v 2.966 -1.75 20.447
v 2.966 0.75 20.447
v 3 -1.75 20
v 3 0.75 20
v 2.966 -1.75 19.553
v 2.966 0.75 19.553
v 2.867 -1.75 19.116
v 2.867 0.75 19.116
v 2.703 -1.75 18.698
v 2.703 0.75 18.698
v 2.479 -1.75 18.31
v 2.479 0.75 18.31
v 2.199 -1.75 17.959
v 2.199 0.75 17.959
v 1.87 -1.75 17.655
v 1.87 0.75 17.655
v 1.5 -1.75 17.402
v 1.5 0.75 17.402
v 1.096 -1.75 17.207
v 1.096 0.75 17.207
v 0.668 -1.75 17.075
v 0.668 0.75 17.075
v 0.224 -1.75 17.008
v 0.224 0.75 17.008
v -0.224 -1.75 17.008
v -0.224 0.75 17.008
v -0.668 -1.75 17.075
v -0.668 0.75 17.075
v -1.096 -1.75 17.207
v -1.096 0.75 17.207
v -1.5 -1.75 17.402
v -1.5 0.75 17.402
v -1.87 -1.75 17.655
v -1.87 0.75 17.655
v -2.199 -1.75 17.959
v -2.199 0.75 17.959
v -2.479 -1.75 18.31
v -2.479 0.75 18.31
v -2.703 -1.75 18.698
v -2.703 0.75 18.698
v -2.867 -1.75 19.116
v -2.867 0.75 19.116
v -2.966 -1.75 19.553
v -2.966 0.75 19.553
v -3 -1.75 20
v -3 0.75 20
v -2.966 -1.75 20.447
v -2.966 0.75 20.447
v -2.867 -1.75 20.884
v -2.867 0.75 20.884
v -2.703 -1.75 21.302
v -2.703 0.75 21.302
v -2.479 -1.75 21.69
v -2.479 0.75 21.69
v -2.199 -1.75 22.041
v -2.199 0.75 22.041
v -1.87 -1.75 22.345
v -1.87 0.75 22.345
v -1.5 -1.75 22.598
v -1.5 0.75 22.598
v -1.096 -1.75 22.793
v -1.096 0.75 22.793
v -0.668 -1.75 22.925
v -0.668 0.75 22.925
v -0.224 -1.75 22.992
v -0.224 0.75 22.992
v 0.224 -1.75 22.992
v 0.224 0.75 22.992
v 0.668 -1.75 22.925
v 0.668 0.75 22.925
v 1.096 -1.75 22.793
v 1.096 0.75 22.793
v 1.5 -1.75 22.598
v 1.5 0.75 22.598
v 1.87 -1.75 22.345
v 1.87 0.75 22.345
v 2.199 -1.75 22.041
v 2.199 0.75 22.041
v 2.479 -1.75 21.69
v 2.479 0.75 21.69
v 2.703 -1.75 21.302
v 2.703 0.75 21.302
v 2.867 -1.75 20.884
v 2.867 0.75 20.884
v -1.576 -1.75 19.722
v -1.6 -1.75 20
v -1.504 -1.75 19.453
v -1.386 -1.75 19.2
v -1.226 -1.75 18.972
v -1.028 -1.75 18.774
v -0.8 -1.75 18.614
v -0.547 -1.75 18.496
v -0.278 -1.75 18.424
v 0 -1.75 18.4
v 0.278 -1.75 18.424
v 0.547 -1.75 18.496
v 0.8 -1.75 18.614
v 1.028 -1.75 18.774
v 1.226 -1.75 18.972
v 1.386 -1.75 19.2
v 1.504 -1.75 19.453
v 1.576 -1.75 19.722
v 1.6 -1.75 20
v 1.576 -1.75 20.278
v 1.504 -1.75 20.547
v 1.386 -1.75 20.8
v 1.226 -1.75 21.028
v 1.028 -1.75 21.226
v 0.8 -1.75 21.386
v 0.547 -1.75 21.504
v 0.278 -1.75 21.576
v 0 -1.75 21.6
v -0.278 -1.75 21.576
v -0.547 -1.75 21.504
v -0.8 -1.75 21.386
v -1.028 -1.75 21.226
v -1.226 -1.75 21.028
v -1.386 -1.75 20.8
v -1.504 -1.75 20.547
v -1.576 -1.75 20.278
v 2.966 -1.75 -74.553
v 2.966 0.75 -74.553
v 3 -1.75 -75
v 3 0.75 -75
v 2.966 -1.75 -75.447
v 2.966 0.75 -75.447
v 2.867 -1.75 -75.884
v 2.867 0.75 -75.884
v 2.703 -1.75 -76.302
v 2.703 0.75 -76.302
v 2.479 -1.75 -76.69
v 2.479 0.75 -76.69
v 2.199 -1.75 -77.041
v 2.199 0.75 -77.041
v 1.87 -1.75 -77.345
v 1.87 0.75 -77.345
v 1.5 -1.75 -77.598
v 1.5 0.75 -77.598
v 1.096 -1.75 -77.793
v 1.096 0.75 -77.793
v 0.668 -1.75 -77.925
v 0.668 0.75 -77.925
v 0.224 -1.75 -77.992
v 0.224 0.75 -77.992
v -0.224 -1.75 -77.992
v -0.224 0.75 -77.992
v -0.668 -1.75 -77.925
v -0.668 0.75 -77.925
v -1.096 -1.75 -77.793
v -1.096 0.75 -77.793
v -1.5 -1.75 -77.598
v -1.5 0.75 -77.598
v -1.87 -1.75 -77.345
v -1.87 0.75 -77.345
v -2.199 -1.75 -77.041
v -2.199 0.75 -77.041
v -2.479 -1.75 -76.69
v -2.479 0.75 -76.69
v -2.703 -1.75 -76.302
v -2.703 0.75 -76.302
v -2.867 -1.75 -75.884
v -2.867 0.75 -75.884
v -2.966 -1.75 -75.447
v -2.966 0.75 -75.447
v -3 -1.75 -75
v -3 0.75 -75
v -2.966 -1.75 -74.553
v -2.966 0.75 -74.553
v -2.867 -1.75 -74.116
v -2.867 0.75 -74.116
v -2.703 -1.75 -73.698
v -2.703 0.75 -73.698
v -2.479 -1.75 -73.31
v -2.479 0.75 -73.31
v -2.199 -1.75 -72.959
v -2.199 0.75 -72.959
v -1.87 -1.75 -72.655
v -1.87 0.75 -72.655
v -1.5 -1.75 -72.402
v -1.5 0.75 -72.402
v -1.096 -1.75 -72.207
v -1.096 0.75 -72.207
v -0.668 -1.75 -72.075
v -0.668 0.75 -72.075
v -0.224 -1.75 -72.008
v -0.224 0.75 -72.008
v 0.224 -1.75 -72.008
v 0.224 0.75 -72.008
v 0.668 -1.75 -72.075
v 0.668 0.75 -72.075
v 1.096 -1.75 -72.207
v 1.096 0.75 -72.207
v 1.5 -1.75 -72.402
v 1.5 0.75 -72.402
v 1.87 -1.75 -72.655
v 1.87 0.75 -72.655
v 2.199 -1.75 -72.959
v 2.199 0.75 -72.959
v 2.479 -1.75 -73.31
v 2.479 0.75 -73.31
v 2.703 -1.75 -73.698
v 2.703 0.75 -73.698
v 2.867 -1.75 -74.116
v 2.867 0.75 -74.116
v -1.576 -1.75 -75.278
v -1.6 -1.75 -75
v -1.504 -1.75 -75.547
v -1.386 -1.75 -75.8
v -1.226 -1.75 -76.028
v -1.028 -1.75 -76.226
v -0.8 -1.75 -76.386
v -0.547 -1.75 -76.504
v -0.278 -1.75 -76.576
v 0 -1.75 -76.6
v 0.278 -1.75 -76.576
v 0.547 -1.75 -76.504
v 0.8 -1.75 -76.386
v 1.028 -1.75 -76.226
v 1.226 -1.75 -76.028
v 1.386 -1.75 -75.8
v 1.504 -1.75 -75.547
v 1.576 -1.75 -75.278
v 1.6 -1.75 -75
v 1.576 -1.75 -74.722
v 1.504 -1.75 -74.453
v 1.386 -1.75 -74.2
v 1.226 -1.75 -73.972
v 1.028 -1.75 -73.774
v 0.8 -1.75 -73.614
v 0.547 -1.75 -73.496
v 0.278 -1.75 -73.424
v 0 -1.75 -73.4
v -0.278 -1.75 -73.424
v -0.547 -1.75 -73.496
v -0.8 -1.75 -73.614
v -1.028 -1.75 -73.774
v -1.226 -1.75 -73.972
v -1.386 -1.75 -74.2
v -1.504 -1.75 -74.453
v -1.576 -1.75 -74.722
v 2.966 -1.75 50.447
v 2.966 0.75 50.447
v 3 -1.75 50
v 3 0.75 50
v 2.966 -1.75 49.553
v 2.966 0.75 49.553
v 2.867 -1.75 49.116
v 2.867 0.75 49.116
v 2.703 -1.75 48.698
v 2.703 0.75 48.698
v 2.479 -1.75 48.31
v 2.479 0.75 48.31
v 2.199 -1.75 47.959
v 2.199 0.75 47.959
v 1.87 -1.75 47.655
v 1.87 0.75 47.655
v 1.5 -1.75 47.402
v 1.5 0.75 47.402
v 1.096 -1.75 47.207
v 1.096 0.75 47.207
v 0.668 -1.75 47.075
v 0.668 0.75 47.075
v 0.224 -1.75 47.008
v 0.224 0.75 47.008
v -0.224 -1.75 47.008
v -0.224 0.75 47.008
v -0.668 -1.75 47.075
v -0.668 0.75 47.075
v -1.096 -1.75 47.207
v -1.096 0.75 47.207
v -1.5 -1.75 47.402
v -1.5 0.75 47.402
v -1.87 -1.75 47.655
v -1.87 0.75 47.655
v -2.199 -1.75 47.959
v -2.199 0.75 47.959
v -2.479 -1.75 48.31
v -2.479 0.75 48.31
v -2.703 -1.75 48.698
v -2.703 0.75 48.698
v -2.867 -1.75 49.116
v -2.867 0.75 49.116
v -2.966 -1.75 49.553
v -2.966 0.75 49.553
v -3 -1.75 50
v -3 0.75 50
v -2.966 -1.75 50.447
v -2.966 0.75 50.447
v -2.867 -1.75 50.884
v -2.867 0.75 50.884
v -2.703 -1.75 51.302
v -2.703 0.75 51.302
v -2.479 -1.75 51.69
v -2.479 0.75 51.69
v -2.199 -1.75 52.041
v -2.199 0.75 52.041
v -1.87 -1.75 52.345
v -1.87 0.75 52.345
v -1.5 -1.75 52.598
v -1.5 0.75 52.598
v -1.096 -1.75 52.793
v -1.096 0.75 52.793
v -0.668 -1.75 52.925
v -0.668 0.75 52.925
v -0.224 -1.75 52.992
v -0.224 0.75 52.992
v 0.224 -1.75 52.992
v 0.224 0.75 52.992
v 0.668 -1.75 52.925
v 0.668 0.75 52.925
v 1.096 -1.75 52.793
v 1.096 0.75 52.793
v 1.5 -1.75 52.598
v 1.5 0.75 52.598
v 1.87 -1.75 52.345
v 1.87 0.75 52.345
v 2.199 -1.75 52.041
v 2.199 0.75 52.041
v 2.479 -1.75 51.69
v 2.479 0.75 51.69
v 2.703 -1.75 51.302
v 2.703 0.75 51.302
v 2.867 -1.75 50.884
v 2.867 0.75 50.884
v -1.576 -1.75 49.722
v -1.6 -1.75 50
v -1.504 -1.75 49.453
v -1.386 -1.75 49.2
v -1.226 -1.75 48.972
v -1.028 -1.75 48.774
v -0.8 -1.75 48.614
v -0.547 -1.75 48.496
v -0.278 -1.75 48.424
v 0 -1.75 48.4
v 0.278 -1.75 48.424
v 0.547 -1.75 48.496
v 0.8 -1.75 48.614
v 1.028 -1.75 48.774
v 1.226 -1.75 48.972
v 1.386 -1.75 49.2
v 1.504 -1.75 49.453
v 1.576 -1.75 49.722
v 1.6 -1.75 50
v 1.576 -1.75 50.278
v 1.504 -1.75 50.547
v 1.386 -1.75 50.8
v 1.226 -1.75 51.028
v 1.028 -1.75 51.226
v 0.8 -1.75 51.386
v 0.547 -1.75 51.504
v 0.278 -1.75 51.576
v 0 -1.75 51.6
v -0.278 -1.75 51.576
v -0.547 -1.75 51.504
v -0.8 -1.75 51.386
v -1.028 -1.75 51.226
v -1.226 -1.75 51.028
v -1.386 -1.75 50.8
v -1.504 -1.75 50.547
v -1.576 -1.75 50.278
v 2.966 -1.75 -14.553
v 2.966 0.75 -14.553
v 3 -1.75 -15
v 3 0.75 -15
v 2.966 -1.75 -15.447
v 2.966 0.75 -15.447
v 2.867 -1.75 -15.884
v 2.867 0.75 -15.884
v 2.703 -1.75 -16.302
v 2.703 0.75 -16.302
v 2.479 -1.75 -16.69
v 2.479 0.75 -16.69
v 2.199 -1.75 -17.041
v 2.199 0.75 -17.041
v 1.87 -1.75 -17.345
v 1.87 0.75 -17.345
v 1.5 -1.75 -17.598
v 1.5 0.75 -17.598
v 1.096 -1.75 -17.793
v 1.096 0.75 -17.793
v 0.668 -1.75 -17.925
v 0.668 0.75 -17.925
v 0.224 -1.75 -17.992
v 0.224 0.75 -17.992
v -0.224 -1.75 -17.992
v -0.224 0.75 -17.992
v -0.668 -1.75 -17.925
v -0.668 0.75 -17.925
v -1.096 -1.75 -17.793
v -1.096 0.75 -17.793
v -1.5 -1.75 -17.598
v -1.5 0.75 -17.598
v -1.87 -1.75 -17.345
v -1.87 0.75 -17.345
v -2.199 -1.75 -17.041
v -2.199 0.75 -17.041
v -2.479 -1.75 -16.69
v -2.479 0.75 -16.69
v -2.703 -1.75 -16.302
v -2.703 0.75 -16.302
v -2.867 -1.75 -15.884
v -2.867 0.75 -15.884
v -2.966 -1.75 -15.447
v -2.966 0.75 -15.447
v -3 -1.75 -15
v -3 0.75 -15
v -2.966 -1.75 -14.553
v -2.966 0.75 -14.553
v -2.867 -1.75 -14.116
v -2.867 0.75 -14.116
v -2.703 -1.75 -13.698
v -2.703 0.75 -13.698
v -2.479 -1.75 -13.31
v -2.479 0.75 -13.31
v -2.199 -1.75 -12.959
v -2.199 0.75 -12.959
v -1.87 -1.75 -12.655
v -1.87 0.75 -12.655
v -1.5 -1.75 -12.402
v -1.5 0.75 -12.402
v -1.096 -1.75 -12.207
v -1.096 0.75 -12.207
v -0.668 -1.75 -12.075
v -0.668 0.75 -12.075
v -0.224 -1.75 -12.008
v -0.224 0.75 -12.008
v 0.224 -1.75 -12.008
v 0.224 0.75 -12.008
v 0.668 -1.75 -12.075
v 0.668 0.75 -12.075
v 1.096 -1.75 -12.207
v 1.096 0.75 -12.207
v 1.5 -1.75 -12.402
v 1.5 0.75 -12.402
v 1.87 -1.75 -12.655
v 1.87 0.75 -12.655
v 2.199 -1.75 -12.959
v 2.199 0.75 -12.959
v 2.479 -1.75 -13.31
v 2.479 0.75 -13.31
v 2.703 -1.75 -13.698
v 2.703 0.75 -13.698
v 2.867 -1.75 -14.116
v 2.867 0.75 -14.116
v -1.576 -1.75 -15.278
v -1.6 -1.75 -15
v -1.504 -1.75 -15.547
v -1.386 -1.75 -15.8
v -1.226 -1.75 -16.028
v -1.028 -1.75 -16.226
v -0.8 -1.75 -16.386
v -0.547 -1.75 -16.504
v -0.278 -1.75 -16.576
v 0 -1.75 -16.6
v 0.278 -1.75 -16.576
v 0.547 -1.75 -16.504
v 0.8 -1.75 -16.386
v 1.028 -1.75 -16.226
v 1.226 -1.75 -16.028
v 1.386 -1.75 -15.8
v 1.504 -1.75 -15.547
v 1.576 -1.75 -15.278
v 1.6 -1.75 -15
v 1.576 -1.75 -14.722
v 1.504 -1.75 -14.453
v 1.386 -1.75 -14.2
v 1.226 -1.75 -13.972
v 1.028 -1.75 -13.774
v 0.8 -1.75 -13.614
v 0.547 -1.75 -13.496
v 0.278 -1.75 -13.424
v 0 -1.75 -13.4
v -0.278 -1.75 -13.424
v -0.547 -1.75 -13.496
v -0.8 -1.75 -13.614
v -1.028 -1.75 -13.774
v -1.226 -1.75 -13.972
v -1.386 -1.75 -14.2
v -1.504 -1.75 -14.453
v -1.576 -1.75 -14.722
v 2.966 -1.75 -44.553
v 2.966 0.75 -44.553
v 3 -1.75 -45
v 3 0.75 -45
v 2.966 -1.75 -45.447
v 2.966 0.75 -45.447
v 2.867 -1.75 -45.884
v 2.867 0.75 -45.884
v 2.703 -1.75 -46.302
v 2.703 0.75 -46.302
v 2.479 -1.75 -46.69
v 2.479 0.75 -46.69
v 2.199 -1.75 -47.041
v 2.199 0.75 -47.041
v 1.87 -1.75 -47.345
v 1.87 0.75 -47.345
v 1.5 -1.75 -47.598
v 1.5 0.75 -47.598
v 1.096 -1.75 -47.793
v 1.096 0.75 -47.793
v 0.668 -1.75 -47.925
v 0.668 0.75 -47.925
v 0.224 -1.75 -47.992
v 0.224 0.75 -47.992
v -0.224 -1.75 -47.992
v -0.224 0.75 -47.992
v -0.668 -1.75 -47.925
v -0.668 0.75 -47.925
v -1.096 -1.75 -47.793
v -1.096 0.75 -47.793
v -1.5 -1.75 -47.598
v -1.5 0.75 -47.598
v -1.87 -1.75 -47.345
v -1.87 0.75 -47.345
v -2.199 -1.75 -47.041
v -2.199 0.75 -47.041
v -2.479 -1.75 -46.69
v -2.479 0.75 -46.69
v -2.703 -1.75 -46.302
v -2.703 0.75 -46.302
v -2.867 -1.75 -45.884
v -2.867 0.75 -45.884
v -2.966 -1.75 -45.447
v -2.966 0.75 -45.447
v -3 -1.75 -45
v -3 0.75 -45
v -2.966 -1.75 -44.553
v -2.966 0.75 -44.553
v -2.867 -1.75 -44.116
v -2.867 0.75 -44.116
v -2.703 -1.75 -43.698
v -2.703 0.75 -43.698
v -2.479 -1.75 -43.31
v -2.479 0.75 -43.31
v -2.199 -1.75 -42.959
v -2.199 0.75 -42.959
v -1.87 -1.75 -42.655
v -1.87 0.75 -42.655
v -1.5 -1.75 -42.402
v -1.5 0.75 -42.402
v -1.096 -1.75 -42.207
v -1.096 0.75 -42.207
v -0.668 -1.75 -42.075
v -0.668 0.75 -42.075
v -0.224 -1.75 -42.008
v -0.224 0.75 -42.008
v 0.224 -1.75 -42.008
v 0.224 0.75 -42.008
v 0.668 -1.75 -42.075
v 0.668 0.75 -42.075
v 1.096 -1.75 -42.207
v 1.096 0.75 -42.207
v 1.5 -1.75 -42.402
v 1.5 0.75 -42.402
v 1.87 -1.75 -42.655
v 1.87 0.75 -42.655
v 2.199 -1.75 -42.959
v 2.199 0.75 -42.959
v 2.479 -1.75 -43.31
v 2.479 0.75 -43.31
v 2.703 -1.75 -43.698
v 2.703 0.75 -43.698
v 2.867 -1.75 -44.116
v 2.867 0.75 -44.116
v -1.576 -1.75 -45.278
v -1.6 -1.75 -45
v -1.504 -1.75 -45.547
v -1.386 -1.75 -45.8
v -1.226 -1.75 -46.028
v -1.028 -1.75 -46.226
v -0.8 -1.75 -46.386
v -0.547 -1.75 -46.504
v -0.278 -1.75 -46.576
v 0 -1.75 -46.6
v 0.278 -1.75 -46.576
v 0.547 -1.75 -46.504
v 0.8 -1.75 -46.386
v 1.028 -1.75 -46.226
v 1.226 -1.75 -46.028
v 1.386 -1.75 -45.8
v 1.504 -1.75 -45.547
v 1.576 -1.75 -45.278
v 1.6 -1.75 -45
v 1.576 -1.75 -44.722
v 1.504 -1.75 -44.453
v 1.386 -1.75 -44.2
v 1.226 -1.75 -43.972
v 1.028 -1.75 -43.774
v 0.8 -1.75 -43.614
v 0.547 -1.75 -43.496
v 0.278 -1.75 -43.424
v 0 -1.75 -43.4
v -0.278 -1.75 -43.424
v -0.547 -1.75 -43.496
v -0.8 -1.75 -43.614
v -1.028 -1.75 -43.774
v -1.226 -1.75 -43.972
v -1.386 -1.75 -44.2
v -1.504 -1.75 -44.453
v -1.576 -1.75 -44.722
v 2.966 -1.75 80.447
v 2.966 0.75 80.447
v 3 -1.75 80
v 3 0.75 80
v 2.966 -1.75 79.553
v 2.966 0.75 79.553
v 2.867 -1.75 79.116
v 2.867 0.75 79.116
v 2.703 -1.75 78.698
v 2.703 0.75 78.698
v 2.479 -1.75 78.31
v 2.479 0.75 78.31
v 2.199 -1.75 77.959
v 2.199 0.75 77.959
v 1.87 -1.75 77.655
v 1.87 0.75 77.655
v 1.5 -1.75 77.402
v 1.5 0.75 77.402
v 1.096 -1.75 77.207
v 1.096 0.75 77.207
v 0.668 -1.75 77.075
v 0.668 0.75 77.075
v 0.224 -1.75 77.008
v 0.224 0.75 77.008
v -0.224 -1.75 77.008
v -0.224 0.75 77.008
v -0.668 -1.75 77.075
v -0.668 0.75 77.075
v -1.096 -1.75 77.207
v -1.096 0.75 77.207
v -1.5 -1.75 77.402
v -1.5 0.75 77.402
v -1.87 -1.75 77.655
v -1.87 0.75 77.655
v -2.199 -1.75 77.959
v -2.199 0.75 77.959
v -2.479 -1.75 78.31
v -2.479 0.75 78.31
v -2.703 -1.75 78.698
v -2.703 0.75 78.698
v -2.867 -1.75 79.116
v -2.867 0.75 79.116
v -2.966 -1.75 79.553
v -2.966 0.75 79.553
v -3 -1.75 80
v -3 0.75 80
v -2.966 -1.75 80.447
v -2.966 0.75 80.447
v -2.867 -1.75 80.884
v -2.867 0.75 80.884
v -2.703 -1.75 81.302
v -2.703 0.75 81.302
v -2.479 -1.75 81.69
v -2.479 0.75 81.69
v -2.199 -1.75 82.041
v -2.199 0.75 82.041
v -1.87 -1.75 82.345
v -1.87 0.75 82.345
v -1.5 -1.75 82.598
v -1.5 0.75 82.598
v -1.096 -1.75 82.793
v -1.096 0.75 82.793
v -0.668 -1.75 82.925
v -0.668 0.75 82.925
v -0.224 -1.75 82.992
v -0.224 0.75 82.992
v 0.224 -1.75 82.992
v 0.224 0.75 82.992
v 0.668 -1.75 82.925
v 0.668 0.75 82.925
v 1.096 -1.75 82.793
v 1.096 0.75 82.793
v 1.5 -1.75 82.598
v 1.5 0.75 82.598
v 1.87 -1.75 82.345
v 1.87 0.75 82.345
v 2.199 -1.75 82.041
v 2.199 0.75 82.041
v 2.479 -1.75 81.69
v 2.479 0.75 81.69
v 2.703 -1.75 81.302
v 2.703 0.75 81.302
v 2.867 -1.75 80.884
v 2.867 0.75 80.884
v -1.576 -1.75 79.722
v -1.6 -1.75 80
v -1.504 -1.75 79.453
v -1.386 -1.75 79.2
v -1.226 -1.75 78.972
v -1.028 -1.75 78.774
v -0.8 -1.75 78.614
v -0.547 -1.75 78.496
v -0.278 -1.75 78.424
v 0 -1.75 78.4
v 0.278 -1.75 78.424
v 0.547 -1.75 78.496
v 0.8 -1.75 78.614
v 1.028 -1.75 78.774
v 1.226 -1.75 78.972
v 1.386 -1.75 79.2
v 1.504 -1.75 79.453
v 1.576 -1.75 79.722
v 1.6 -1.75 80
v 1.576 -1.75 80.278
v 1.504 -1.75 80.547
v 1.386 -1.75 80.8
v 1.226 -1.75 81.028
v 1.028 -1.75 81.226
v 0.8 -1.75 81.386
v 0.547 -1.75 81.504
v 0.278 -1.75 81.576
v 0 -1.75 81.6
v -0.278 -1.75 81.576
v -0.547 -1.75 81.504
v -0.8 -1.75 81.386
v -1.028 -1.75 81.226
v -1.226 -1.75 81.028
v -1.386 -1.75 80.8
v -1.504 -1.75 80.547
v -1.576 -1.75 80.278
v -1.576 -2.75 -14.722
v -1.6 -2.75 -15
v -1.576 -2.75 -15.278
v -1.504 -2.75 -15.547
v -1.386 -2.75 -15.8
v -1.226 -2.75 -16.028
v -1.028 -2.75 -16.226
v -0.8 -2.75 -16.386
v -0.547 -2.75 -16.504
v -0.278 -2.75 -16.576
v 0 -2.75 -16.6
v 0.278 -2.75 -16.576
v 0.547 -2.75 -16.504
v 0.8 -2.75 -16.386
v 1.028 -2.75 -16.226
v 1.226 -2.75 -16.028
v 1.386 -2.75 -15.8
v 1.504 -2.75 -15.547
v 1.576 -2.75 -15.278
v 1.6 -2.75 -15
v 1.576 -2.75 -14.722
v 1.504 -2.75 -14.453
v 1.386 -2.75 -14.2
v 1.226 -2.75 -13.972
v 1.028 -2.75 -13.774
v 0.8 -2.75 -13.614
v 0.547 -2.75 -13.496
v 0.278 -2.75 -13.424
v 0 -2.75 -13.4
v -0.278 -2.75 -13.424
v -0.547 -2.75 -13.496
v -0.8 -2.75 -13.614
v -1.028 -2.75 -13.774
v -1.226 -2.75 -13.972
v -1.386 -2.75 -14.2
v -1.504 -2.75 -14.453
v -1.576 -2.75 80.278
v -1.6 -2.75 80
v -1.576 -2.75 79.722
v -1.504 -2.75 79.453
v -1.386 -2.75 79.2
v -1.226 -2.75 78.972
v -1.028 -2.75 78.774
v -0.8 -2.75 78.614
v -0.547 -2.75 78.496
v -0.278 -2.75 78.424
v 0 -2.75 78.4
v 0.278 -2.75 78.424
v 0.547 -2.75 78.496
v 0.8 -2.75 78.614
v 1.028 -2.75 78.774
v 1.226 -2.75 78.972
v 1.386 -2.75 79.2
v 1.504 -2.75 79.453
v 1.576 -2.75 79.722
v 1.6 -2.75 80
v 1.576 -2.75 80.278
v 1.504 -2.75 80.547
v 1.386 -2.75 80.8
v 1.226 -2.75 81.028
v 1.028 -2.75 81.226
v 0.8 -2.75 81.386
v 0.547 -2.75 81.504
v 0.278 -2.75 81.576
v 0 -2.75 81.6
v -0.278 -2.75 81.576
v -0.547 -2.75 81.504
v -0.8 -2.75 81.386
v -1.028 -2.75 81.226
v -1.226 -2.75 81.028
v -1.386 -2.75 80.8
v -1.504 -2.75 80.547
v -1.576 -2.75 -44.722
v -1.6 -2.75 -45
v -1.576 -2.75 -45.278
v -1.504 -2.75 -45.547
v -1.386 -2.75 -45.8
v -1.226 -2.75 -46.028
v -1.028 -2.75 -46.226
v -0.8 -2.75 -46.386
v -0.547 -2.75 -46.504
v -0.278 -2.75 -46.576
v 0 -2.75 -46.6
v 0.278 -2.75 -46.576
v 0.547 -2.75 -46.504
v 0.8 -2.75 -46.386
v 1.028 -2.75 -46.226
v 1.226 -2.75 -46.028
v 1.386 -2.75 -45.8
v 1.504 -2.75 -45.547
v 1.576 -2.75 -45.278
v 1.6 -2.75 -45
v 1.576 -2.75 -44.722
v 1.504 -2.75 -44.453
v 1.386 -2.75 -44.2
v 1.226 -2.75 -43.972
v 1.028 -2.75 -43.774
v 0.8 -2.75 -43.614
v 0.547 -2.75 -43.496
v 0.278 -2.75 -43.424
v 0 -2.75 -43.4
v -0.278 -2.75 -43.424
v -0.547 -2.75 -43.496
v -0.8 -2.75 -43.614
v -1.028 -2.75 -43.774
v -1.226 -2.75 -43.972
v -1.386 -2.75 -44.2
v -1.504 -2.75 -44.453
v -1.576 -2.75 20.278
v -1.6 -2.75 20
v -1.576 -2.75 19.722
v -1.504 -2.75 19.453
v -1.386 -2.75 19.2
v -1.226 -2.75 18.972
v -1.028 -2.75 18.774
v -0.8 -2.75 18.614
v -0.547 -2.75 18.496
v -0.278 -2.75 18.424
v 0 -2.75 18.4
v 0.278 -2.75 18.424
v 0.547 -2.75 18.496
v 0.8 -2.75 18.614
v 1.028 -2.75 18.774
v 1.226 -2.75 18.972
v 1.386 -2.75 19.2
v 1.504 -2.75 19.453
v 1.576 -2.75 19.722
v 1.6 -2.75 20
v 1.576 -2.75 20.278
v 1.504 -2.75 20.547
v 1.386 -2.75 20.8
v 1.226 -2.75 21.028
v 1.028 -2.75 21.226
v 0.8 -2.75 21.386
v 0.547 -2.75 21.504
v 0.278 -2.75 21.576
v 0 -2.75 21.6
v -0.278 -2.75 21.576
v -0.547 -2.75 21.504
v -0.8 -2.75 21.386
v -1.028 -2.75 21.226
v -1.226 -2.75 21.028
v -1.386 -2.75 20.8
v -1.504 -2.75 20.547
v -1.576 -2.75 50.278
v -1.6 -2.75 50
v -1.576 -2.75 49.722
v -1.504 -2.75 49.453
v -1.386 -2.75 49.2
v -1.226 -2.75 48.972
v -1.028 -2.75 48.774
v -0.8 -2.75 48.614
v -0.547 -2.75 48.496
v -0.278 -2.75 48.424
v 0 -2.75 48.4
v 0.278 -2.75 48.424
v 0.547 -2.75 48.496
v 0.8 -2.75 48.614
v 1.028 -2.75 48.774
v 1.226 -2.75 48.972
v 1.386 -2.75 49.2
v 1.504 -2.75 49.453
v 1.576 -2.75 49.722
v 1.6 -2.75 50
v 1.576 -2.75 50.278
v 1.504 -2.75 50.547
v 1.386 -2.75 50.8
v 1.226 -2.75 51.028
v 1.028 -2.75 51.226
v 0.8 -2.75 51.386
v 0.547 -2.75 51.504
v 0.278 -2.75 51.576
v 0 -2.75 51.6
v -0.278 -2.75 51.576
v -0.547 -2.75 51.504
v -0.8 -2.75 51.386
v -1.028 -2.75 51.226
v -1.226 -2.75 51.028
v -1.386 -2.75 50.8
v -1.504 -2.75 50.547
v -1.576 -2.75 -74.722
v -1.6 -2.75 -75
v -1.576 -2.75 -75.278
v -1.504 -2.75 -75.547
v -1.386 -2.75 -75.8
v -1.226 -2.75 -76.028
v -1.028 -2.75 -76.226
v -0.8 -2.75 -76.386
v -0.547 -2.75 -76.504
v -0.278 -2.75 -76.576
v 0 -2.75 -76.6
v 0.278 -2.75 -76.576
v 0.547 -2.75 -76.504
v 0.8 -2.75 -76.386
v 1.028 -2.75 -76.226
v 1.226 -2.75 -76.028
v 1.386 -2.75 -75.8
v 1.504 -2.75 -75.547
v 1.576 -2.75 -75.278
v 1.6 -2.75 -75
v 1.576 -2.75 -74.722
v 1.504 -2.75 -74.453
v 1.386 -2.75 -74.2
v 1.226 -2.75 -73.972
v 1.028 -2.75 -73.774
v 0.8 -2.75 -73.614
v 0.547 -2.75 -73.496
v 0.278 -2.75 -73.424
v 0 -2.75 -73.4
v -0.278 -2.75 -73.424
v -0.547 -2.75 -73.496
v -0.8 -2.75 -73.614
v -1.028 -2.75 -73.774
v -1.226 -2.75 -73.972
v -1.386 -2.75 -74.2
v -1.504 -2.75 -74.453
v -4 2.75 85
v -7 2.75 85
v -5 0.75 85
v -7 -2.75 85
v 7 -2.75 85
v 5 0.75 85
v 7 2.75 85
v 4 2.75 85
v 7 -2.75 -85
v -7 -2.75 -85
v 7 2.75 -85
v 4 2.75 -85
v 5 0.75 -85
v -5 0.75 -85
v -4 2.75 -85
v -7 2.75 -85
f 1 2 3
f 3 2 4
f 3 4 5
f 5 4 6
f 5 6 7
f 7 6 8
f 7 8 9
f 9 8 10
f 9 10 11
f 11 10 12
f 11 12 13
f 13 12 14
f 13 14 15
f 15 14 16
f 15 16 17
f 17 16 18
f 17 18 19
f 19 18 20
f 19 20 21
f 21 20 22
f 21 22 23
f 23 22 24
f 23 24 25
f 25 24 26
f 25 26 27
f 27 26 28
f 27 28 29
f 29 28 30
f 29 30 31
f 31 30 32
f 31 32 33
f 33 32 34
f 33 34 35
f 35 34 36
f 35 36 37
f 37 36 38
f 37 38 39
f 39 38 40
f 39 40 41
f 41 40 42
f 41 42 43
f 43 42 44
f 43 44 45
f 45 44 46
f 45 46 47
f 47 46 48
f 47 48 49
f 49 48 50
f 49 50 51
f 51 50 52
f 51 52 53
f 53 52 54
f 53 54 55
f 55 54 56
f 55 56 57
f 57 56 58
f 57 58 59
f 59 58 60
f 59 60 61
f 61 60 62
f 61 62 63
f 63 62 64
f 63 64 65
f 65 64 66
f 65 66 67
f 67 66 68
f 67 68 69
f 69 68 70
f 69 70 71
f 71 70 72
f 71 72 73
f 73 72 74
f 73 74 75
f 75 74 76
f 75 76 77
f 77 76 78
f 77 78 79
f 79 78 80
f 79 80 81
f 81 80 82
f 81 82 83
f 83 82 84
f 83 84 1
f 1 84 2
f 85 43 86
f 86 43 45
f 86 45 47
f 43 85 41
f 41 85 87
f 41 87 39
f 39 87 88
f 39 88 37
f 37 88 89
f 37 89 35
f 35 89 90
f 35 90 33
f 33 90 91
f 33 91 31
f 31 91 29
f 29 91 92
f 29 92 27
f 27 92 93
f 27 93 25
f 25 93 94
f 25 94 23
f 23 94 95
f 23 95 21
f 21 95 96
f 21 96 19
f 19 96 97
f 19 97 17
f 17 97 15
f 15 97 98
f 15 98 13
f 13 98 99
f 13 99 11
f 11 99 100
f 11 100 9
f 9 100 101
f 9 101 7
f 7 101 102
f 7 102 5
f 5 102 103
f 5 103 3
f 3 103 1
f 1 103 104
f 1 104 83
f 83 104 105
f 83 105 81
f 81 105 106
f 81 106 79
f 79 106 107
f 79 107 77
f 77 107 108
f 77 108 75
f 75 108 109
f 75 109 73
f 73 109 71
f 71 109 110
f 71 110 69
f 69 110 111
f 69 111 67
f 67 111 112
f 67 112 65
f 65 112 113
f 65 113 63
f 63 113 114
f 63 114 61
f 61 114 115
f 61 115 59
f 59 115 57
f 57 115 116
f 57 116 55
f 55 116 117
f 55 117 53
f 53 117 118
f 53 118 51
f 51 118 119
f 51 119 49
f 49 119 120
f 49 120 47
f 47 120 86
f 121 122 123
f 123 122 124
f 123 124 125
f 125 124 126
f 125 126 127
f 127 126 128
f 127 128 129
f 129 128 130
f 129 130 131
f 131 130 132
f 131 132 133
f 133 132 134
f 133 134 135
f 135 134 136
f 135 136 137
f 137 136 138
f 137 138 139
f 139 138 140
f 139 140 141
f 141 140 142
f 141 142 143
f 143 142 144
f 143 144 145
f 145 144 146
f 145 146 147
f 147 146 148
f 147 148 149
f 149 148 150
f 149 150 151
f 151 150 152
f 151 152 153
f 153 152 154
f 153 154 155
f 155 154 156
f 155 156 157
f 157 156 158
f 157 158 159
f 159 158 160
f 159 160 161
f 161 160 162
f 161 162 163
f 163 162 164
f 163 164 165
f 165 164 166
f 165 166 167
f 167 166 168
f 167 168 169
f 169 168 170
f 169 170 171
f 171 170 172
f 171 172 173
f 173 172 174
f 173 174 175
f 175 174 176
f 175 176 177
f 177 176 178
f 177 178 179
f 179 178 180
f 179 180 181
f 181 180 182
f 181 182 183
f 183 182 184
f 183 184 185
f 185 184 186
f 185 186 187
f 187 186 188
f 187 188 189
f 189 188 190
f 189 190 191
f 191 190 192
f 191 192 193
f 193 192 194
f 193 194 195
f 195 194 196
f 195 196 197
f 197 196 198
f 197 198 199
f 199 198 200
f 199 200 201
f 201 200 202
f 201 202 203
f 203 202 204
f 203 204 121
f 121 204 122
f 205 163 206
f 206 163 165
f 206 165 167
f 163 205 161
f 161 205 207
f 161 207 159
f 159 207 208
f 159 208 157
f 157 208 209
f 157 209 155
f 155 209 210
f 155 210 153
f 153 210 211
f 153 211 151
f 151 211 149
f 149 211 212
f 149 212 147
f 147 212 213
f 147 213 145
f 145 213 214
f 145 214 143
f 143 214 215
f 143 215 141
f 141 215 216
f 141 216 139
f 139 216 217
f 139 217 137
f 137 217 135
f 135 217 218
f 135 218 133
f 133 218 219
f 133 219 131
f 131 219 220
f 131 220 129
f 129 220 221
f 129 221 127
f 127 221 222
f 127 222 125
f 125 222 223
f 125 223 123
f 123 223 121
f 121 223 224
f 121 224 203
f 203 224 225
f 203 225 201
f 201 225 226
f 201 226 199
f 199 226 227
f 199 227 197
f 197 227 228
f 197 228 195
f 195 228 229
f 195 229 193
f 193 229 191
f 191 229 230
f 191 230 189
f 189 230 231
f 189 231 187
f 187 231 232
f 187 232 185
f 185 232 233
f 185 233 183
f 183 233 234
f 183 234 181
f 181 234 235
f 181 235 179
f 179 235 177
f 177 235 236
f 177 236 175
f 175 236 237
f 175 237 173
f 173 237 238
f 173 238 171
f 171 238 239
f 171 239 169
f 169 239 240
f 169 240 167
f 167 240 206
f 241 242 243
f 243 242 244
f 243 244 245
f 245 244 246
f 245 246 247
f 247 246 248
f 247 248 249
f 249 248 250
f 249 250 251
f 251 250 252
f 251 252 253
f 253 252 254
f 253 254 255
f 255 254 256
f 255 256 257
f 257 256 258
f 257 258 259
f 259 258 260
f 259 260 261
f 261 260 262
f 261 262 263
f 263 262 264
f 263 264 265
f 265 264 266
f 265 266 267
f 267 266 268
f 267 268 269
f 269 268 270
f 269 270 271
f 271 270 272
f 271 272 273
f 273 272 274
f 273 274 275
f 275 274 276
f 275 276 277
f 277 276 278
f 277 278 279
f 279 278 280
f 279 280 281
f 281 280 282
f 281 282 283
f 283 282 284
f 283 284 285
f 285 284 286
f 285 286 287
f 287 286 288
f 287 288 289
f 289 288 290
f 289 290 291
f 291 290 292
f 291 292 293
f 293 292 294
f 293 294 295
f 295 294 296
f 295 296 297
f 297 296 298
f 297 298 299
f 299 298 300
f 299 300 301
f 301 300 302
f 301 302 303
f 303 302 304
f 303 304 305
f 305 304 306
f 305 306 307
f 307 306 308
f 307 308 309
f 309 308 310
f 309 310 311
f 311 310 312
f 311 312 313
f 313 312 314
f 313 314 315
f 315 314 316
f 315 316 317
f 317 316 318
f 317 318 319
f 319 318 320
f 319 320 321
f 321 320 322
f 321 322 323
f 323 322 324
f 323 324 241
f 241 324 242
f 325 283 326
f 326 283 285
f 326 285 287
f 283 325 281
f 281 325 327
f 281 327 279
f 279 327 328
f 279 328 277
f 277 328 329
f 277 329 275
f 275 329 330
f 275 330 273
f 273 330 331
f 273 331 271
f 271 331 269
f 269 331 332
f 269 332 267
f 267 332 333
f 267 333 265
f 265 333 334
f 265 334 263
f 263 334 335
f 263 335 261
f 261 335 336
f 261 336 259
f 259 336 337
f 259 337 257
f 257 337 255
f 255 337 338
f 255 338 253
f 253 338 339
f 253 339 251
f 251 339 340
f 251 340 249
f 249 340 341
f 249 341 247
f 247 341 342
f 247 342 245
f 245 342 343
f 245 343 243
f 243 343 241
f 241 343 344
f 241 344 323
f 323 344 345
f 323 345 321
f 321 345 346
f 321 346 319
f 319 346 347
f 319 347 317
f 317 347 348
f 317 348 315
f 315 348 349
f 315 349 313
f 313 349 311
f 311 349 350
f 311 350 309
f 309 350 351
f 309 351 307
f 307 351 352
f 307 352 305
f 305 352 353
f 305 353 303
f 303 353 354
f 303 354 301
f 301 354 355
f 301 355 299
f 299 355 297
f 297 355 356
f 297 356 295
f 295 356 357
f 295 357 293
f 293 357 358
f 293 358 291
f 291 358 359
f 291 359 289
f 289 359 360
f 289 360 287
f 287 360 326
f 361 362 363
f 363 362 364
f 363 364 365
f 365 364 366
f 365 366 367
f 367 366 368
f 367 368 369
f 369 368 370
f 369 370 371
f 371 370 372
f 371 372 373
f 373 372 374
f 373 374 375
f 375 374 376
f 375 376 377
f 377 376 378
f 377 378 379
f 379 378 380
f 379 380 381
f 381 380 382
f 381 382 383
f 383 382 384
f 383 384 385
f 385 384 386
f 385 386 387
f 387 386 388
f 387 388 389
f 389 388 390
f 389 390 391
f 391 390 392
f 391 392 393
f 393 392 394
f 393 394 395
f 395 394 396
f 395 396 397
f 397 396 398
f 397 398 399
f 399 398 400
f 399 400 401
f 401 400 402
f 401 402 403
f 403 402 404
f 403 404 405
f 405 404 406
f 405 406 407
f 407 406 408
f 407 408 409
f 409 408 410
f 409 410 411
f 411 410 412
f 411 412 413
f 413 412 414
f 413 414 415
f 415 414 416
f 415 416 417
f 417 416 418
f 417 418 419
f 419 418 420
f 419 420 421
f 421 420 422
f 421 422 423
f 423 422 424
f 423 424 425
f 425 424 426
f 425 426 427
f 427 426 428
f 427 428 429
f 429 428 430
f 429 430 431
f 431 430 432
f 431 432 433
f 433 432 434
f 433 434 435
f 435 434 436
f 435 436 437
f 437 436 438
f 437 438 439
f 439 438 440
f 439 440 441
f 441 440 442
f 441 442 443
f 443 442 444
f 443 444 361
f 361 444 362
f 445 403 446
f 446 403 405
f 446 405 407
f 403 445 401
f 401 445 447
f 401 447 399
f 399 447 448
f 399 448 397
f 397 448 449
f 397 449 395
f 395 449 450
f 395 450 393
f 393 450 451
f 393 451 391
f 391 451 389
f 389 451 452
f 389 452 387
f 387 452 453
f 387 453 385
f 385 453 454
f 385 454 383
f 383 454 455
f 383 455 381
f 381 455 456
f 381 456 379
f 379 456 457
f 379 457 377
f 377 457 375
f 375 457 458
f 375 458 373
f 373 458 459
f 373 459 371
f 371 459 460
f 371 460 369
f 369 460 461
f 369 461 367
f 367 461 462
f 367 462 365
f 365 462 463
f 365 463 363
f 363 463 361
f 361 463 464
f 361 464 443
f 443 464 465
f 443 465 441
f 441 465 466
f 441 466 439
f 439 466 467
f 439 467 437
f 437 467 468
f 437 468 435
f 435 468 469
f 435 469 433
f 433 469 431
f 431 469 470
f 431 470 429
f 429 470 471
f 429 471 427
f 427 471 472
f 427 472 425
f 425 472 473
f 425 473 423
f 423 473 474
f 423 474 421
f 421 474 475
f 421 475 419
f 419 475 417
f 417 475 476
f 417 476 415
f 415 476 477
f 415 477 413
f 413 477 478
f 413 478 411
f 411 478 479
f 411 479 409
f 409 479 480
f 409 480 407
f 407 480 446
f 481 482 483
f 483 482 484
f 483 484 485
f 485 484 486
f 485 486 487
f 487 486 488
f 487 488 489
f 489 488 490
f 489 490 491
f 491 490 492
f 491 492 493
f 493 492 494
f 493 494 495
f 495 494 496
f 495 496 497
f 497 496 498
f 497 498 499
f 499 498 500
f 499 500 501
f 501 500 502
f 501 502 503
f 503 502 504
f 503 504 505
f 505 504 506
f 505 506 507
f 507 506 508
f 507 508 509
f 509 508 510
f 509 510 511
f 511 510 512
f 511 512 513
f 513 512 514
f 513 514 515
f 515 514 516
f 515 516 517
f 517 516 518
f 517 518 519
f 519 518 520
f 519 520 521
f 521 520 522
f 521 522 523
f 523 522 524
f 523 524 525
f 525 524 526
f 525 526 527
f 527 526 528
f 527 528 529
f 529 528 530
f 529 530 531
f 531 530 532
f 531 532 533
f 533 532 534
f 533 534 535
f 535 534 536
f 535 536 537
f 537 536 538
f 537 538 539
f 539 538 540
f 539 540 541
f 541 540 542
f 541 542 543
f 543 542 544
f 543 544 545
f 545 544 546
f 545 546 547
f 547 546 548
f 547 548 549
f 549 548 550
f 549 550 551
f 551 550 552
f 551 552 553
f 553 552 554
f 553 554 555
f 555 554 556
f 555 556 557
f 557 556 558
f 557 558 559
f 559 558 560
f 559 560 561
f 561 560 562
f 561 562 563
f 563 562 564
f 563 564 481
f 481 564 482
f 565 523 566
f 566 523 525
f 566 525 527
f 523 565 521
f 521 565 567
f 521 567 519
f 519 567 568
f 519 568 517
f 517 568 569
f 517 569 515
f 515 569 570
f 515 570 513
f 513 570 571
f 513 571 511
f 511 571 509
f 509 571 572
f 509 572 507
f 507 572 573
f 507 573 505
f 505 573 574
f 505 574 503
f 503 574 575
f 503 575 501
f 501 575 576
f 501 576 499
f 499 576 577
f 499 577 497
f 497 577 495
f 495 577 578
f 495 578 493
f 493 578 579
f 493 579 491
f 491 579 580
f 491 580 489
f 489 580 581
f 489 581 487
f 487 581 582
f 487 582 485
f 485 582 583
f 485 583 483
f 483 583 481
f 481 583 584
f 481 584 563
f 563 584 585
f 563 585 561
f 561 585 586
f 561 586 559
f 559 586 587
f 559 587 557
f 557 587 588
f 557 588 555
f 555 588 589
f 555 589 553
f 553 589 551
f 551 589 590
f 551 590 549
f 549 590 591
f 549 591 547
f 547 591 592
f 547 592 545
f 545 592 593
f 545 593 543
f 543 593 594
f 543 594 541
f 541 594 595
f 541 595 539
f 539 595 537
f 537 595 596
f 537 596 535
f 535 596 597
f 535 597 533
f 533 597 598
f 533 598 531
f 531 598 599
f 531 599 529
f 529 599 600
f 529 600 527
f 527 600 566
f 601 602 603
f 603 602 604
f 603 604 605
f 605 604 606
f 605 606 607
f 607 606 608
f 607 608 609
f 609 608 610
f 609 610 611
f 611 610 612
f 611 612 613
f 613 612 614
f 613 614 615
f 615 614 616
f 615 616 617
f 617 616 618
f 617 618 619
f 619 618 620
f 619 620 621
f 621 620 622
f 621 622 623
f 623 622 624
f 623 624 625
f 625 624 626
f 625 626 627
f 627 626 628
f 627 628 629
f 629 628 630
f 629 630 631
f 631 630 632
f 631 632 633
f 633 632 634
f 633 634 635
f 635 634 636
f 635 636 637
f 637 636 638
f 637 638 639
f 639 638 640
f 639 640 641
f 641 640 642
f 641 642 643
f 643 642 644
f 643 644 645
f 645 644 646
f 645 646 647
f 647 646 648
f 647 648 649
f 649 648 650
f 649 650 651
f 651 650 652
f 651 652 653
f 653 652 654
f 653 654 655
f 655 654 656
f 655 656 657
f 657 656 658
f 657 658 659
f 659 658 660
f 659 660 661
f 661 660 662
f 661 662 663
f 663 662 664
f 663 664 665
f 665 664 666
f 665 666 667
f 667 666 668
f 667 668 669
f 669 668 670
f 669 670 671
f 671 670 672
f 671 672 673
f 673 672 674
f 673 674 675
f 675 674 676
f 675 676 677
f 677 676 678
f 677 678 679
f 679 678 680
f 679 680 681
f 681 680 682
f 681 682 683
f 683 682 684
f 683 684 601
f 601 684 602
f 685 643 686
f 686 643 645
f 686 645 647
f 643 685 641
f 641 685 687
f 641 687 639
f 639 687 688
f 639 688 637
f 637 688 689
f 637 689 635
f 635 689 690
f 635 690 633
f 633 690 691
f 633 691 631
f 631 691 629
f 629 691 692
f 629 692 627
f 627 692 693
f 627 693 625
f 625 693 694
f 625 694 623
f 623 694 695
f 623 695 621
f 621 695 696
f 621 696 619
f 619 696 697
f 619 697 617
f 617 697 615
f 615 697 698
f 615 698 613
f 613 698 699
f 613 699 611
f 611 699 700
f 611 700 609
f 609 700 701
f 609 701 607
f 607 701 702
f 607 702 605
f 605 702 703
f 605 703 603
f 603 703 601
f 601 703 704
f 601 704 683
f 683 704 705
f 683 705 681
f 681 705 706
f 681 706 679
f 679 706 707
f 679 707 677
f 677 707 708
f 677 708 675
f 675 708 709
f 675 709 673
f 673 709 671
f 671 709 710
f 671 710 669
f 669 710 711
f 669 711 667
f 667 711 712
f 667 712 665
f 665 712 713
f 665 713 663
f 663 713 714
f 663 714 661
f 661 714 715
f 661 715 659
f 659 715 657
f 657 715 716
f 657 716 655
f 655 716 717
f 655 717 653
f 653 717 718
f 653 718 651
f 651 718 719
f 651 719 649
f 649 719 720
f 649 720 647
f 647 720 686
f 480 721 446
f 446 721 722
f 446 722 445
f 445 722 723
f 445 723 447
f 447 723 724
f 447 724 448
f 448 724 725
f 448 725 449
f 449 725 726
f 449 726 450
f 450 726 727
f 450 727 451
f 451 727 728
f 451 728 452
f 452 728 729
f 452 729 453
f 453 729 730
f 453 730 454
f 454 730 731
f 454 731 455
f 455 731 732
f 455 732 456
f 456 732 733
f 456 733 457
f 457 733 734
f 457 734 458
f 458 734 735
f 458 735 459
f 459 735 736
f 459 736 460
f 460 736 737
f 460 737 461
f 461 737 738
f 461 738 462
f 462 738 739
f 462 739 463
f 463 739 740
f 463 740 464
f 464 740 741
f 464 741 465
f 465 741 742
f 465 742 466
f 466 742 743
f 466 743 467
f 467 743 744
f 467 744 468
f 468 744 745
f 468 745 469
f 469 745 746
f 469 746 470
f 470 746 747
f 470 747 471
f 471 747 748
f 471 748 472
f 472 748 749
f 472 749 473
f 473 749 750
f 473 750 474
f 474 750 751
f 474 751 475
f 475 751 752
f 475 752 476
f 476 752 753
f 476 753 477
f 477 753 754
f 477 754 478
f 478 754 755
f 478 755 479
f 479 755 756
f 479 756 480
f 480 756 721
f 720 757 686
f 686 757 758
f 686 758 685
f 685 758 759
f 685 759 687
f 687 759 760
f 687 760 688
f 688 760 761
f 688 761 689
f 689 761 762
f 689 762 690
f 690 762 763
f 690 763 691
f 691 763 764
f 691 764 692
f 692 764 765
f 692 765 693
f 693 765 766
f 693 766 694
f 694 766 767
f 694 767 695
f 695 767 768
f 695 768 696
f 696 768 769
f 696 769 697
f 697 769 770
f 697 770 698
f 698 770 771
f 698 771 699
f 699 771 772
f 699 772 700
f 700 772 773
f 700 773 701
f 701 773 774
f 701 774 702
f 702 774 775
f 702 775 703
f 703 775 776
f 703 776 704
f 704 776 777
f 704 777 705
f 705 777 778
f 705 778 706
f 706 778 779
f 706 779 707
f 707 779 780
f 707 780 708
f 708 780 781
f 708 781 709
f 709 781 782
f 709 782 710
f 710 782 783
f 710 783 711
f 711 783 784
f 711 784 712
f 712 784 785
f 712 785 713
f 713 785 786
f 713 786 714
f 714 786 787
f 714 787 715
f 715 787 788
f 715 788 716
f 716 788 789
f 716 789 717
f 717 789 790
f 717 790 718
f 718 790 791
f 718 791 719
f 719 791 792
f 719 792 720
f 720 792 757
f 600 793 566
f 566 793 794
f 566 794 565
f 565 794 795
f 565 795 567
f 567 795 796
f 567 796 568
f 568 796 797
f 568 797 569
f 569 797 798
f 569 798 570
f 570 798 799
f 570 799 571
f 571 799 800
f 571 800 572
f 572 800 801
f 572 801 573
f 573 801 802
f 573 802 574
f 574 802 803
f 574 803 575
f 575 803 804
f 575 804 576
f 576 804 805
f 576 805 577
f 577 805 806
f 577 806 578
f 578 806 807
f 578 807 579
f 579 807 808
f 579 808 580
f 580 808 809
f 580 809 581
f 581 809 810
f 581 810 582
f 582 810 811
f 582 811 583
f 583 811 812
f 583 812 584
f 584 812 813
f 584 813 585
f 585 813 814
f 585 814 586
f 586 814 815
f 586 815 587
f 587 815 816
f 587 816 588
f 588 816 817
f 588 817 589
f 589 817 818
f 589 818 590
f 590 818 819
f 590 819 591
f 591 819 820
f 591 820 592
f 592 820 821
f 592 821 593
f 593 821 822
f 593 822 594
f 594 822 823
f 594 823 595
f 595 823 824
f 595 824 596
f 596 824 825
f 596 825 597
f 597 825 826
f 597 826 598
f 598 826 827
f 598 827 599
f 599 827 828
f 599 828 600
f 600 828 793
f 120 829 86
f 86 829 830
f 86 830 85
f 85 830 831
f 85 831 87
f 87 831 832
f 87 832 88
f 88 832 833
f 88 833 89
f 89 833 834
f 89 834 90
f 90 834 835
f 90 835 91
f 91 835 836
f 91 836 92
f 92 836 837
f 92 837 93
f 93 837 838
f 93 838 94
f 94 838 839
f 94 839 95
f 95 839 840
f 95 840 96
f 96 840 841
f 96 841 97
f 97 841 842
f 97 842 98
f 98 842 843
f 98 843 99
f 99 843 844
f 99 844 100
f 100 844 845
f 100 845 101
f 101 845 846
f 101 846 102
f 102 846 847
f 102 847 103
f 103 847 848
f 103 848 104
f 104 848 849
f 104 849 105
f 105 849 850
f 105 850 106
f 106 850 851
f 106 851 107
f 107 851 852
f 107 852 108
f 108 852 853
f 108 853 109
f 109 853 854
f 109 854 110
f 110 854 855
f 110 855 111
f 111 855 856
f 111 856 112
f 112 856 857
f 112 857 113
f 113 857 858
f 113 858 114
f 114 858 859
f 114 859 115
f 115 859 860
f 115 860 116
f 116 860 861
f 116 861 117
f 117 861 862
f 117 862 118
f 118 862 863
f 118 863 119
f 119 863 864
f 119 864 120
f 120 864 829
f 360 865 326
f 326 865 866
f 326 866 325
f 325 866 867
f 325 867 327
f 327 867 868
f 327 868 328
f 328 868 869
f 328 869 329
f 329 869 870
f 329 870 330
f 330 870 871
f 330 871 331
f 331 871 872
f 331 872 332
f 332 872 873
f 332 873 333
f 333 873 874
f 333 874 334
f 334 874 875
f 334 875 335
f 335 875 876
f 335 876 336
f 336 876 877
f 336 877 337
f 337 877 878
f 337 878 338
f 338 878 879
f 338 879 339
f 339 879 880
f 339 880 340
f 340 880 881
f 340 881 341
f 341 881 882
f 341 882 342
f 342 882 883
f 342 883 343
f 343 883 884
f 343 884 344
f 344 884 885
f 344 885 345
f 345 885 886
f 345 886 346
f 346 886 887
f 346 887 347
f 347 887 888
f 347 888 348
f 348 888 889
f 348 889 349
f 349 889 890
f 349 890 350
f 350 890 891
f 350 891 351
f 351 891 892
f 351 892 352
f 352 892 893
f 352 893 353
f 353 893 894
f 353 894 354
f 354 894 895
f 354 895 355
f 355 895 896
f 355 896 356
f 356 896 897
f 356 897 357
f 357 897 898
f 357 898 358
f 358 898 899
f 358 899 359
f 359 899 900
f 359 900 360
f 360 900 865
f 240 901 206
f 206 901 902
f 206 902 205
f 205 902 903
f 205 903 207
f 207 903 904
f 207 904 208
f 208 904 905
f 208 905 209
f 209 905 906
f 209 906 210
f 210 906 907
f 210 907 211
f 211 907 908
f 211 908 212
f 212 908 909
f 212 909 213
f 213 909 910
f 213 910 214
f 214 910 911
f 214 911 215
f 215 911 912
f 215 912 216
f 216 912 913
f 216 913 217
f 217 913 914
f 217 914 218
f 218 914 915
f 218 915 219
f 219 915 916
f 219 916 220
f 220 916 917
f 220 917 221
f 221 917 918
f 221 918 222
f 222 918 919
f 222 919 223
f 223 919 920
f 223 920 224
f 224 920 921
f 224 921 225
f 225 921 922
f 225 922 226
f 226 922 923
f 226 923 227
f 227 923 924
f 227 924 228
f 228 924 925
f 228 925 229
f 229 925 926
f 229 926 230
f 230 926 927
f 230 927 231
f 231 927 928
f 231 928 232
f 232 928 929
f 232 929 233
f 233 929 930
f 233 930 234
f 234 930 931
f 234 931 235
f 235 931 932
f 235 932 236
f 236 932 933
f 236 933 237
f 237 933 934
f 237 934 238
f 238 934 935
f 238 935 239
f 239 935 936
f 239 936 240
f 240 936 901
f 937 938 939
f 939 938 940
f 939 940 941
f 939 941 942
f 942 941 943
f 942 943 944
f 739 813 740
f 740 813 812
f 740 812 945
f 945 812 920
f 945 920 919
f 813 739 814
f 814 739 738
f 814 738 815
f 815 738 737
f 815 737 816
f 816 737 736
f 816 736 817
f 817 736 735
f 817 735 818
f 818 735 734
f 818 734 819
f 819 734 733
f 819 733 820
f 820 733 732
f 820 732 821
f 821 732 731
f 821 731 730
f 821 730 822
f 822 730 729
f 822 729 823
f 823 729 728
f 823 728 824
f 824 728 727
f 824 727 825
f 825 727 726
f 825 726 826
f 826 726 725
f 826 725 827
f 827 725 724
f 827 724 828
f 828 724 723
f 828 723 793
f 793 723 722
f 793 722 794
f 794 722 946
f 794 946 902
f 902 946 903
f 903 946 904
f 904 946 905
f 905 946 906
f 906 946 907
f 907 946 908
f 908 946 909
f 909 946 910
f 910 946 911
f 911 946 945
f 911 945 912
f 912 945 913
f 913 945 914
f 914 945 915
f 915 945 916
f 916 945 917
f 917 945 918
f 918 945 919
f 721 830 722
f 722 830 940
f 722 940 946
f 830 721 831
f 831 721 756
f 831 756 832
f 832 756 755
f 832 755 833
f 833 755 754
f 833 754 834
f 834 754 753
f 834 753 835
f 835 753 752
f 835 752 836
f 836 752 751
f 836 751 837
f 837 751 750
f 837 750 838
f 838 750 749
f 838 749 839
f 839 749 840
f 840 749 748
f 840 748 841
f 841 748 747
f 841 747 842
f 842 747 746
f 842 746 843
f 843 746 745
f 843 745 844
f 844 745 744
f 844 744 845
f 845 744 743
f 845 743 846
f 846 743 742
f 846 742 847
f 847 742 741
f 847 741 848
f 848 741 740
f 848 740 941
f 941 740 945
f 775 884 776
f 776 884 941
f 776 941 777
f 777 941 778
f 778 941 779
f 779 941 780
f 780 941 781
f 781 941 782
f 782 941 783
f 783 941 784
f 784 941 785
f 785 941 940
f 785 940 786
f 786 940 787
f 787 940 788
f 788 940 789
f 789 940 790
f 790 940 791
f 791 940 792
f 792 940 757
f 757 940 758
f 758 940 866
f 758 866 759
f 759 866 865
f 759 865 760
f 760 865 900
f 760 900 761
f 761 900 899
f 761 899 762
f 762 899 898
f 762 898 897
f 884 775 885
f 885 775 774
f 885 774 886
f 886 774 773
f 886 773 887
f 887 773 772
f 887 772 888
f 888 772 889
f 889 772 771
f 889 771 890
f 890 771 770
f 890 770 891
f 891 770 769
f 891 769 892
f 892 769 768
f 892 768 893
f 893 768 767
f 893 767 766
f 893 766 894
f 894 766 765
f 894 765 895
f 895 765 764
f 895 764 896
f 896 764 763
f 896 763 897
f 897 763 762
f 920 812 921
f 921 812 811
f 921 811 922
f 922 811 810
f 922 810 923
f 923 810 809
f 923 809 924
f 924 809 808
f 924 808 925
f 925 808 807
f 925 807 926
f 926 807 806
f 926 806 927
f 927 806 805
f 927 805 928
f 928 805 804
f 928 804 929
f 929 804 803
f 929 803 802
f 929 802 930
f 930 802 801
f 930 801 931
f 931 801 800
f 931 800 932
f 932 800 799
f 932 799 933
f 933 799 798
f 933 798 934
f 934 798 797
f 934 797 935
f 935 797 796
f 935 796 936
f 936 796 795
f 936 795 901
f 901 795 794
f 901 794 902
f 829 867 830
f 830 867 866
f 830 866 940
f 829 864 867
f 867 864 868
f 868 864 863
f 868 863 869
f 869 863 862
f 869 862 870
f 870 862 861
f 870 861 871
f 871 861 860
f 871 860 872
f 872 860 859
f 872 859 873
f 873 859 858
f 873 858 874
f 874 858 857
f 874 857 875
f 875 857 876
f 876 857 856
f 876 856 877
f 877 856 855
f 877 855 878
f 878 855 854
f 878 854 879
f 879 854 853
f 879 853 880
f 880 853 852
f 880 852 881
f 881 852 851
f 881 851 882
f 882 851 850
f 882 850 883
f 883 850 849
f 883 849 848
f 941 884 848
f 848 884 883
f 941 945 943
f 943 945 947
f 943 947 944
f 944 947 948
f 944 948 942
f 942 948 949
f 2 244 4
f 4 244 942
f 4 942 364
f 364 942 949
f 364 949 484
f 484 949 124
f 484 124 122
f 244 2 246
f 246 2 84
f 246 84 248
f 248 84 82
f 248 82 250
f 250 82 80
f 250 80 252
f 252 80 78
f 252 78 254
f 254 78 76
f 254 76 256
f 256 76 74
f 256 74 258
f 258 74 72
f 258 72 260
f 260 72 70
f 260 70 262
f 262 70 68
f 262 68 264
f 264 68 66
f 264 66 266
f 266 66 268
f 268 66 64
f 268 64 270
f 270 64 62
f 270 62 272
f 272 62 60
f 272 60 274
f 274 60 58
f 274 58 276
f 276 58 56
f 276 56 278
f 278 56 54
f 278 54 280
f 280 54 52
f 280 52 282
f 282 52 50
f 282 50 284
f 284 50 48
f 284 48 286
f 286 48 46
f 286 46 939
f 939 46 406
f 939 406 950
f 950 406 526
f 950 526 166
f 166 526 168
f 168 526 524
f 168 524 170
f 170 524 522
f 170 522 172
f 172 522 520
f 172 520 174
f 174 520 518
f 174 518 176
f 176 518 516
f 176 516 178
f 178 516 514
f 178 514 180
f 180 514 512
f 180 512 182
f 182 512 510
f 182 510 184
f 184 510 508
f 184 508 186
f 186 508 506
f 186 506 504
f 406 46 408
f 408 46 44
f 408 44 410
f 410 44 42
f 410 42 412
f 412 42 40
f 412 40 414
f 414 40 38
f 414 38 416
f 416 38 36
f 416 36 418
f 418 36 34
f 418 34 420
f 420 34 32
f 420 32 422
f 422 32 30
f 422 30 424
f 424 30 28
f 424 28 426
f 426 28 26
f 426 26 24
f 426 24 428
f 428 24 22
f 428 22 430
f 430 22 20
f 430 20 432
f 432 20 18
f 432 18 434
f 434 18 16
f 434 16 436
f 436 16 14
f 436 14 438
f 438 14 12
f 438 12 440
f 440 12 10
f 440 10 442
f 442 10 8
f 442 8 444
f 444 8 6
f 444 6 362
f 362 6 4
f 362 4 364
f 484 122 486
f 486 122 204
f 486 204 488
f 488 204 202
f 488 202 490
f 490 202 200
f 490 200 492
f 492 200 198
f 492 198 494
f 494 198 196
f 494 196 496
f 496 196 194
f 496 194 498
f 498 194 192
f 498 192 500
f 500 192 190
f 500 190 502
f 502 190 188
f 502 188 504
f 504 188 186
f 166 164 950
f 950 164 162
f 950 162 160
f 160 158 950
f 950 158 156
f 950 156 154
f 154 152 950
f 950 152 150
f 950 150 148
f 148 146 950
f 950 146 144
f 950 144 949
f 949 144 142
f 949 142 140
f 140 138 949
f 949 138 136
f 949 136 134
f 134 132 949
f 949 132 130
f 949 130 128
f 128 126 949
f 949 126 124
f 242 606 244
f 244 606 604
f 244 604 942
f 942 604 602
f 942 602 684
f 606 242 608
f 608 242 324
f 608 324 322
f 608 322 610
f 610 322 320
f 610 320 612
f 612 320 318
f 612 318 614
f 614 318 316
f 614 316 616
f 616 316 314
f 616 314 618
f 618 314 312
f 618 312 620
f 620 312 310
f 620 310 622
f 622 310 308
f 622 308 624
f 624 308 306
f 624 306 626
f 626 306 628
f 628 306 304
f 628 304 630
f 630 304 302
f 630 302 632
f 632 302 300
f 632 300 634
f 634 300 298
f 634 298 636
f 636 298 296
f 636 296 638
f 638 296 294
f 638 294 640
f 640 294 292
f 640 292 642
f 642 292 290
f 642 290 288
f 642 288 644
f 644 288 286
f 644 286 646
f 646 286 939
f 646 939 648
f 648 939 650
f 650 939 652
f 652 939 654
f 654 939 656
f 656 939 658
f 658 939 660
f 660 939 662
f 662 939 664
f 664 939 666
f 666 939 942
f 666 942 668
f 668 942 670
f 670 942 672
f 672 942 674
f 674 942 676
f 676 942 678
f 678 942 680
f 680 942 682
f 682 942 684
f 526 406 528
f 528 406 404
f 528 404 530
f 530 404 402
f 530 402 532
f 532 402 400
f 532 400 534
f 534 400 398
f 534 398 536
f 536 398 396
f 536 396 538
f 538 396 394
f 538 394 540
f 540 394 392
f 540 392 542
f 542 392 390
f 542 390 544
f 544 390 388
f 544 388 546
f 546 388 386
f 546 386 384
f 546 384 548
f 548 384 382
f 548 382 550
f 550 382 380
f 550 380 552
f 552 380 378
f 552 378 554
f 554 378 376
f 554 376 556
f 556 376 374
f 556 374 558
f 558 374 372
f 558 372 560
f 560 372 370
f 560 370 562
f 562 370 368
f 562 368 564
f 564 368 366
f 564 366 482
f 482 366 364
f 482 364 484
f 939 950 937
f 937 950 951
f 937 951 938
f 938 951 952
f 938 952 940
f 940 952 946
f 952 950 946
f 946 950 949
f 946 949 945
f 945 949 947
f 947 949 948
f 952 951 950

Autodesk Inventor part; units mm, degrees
ref_plane "YZ Plane" through (0, 0, 0) normal (1, 0, 0) x (0, 1, 0)
ref_plane "XZ Plane" through (0, 0, 0) normal (0, 1, 0) x (-1, 0, 0)
ref_plane "XY Plane" through (0, 0, 0) normal (0, 0, 1) x (1, 0, 0)
sketch "Sketch1" plane through (0, 0, 0) normal (0, 0, 1) x (1, 0, 0)
  line L0 (-4, 2.75) -> (-7, 2.75)
  line L1 (-7, 2.75) -> (-7, -2.75)
  line L2 (-7, -2.75) -> (7, -2.75)
  line L3 (7, -2.75) -> (7, 2.75)
  line L4 (7, 2.75) -> (4, 2.75)
  line L5 (4, 2.75) -> (5, 0.75)
  line L6 (5, 0.75) -> (-5, 0.75)
  line L7 (-5, 0.75) -> (-4, 2.75)
  point P0 (0, 0)
  point P1 (0, 0.75)
  point P2 (0, -2.75)
  point P3 (-7, 0)
  dimension "d0" = 14
  dimension "d2" = 3.5
  dimension "d4" = 10
  dimension "d19" = 5.5
  dimension "d20" = 8
extrude "Extrusion1" add sketch "Sketch1" against normal mid plane 170
sketch "Sketch2" plane through (-7, -2.75, -85) normal (0, -1, 0) x (1, 0, 0)
  circle A0 centre (7, 165) radius 1.6
  circle A1 centre (7, 135) radius 1.6
  circle A2 centre (7, 105) radius 1.6
  circle A3 centre (7, 70) radius 1.6
  circle A4 centre (7, 40) radius 1.6
  circle A5 centre (7, 10) radius 1.6
  point P0 (7, 85)
  dimension "d7" = 3.2
  dimension "d8" = 15
  dimension "d9" = 20
  dimension "d10" = 30
  dimension "d11" = 30
  dimension "d12" = 30
  dimension "d13" = 30
extrude "Extrusion2" cut sketch "Sketch2" against normal through all
sketch "Sketch3" plane through (-5, 0.75, -85) normal (0, 1, 0) x (1, 0, 0)
  circle A0 centre (5, -165) radius 1.6 projected
  circle A1 centre (5, -135) radius 1.6 projected
  circle A2 centre (5, -135) radius 1.6 projected
  circle A3 centre (5, -105) radius 1.6 projected
  circle A4 centre (5, -105) radius 1.6 projected
  circle A5 centre (5, -70) radius 1.6 projected
  circle A6 centre (5, -40) radius 1.6 projected
  circle A7 centre (5, -10) radius 1.6 projected
  circle A8 centre (5, -165) radius 3
  circle A9 centre (5, -135) radius 3
  circle A10 centre (5, -105) radius 1.6 projected
  circle A11 centre (5, -105) radius 3
  circle A12 centre (5, -70) radius 1.6 projected
  circle A13 centre (5, -70) radius 3
  circle A14 centre (5, -40) radius 3
  circle A15 centre (5, -10) radius 1.6 projected
  circle A16 centre (5, -10) radius 3
  point P0 (5, -85)
  dimension "d16" = 6
extrude "Extrusion3" cut sketch "Sketch3" against normal blind 2.5 contours A0 | A1 | A3 | A5 | A6 | A7 | A8 | A9 | A11 | A13 | A14 | A16
equation "\"d11\" = d10"
equation "\"d12\" = d10"
equation "\"d13\" = d10"
properties part number "Rail"
